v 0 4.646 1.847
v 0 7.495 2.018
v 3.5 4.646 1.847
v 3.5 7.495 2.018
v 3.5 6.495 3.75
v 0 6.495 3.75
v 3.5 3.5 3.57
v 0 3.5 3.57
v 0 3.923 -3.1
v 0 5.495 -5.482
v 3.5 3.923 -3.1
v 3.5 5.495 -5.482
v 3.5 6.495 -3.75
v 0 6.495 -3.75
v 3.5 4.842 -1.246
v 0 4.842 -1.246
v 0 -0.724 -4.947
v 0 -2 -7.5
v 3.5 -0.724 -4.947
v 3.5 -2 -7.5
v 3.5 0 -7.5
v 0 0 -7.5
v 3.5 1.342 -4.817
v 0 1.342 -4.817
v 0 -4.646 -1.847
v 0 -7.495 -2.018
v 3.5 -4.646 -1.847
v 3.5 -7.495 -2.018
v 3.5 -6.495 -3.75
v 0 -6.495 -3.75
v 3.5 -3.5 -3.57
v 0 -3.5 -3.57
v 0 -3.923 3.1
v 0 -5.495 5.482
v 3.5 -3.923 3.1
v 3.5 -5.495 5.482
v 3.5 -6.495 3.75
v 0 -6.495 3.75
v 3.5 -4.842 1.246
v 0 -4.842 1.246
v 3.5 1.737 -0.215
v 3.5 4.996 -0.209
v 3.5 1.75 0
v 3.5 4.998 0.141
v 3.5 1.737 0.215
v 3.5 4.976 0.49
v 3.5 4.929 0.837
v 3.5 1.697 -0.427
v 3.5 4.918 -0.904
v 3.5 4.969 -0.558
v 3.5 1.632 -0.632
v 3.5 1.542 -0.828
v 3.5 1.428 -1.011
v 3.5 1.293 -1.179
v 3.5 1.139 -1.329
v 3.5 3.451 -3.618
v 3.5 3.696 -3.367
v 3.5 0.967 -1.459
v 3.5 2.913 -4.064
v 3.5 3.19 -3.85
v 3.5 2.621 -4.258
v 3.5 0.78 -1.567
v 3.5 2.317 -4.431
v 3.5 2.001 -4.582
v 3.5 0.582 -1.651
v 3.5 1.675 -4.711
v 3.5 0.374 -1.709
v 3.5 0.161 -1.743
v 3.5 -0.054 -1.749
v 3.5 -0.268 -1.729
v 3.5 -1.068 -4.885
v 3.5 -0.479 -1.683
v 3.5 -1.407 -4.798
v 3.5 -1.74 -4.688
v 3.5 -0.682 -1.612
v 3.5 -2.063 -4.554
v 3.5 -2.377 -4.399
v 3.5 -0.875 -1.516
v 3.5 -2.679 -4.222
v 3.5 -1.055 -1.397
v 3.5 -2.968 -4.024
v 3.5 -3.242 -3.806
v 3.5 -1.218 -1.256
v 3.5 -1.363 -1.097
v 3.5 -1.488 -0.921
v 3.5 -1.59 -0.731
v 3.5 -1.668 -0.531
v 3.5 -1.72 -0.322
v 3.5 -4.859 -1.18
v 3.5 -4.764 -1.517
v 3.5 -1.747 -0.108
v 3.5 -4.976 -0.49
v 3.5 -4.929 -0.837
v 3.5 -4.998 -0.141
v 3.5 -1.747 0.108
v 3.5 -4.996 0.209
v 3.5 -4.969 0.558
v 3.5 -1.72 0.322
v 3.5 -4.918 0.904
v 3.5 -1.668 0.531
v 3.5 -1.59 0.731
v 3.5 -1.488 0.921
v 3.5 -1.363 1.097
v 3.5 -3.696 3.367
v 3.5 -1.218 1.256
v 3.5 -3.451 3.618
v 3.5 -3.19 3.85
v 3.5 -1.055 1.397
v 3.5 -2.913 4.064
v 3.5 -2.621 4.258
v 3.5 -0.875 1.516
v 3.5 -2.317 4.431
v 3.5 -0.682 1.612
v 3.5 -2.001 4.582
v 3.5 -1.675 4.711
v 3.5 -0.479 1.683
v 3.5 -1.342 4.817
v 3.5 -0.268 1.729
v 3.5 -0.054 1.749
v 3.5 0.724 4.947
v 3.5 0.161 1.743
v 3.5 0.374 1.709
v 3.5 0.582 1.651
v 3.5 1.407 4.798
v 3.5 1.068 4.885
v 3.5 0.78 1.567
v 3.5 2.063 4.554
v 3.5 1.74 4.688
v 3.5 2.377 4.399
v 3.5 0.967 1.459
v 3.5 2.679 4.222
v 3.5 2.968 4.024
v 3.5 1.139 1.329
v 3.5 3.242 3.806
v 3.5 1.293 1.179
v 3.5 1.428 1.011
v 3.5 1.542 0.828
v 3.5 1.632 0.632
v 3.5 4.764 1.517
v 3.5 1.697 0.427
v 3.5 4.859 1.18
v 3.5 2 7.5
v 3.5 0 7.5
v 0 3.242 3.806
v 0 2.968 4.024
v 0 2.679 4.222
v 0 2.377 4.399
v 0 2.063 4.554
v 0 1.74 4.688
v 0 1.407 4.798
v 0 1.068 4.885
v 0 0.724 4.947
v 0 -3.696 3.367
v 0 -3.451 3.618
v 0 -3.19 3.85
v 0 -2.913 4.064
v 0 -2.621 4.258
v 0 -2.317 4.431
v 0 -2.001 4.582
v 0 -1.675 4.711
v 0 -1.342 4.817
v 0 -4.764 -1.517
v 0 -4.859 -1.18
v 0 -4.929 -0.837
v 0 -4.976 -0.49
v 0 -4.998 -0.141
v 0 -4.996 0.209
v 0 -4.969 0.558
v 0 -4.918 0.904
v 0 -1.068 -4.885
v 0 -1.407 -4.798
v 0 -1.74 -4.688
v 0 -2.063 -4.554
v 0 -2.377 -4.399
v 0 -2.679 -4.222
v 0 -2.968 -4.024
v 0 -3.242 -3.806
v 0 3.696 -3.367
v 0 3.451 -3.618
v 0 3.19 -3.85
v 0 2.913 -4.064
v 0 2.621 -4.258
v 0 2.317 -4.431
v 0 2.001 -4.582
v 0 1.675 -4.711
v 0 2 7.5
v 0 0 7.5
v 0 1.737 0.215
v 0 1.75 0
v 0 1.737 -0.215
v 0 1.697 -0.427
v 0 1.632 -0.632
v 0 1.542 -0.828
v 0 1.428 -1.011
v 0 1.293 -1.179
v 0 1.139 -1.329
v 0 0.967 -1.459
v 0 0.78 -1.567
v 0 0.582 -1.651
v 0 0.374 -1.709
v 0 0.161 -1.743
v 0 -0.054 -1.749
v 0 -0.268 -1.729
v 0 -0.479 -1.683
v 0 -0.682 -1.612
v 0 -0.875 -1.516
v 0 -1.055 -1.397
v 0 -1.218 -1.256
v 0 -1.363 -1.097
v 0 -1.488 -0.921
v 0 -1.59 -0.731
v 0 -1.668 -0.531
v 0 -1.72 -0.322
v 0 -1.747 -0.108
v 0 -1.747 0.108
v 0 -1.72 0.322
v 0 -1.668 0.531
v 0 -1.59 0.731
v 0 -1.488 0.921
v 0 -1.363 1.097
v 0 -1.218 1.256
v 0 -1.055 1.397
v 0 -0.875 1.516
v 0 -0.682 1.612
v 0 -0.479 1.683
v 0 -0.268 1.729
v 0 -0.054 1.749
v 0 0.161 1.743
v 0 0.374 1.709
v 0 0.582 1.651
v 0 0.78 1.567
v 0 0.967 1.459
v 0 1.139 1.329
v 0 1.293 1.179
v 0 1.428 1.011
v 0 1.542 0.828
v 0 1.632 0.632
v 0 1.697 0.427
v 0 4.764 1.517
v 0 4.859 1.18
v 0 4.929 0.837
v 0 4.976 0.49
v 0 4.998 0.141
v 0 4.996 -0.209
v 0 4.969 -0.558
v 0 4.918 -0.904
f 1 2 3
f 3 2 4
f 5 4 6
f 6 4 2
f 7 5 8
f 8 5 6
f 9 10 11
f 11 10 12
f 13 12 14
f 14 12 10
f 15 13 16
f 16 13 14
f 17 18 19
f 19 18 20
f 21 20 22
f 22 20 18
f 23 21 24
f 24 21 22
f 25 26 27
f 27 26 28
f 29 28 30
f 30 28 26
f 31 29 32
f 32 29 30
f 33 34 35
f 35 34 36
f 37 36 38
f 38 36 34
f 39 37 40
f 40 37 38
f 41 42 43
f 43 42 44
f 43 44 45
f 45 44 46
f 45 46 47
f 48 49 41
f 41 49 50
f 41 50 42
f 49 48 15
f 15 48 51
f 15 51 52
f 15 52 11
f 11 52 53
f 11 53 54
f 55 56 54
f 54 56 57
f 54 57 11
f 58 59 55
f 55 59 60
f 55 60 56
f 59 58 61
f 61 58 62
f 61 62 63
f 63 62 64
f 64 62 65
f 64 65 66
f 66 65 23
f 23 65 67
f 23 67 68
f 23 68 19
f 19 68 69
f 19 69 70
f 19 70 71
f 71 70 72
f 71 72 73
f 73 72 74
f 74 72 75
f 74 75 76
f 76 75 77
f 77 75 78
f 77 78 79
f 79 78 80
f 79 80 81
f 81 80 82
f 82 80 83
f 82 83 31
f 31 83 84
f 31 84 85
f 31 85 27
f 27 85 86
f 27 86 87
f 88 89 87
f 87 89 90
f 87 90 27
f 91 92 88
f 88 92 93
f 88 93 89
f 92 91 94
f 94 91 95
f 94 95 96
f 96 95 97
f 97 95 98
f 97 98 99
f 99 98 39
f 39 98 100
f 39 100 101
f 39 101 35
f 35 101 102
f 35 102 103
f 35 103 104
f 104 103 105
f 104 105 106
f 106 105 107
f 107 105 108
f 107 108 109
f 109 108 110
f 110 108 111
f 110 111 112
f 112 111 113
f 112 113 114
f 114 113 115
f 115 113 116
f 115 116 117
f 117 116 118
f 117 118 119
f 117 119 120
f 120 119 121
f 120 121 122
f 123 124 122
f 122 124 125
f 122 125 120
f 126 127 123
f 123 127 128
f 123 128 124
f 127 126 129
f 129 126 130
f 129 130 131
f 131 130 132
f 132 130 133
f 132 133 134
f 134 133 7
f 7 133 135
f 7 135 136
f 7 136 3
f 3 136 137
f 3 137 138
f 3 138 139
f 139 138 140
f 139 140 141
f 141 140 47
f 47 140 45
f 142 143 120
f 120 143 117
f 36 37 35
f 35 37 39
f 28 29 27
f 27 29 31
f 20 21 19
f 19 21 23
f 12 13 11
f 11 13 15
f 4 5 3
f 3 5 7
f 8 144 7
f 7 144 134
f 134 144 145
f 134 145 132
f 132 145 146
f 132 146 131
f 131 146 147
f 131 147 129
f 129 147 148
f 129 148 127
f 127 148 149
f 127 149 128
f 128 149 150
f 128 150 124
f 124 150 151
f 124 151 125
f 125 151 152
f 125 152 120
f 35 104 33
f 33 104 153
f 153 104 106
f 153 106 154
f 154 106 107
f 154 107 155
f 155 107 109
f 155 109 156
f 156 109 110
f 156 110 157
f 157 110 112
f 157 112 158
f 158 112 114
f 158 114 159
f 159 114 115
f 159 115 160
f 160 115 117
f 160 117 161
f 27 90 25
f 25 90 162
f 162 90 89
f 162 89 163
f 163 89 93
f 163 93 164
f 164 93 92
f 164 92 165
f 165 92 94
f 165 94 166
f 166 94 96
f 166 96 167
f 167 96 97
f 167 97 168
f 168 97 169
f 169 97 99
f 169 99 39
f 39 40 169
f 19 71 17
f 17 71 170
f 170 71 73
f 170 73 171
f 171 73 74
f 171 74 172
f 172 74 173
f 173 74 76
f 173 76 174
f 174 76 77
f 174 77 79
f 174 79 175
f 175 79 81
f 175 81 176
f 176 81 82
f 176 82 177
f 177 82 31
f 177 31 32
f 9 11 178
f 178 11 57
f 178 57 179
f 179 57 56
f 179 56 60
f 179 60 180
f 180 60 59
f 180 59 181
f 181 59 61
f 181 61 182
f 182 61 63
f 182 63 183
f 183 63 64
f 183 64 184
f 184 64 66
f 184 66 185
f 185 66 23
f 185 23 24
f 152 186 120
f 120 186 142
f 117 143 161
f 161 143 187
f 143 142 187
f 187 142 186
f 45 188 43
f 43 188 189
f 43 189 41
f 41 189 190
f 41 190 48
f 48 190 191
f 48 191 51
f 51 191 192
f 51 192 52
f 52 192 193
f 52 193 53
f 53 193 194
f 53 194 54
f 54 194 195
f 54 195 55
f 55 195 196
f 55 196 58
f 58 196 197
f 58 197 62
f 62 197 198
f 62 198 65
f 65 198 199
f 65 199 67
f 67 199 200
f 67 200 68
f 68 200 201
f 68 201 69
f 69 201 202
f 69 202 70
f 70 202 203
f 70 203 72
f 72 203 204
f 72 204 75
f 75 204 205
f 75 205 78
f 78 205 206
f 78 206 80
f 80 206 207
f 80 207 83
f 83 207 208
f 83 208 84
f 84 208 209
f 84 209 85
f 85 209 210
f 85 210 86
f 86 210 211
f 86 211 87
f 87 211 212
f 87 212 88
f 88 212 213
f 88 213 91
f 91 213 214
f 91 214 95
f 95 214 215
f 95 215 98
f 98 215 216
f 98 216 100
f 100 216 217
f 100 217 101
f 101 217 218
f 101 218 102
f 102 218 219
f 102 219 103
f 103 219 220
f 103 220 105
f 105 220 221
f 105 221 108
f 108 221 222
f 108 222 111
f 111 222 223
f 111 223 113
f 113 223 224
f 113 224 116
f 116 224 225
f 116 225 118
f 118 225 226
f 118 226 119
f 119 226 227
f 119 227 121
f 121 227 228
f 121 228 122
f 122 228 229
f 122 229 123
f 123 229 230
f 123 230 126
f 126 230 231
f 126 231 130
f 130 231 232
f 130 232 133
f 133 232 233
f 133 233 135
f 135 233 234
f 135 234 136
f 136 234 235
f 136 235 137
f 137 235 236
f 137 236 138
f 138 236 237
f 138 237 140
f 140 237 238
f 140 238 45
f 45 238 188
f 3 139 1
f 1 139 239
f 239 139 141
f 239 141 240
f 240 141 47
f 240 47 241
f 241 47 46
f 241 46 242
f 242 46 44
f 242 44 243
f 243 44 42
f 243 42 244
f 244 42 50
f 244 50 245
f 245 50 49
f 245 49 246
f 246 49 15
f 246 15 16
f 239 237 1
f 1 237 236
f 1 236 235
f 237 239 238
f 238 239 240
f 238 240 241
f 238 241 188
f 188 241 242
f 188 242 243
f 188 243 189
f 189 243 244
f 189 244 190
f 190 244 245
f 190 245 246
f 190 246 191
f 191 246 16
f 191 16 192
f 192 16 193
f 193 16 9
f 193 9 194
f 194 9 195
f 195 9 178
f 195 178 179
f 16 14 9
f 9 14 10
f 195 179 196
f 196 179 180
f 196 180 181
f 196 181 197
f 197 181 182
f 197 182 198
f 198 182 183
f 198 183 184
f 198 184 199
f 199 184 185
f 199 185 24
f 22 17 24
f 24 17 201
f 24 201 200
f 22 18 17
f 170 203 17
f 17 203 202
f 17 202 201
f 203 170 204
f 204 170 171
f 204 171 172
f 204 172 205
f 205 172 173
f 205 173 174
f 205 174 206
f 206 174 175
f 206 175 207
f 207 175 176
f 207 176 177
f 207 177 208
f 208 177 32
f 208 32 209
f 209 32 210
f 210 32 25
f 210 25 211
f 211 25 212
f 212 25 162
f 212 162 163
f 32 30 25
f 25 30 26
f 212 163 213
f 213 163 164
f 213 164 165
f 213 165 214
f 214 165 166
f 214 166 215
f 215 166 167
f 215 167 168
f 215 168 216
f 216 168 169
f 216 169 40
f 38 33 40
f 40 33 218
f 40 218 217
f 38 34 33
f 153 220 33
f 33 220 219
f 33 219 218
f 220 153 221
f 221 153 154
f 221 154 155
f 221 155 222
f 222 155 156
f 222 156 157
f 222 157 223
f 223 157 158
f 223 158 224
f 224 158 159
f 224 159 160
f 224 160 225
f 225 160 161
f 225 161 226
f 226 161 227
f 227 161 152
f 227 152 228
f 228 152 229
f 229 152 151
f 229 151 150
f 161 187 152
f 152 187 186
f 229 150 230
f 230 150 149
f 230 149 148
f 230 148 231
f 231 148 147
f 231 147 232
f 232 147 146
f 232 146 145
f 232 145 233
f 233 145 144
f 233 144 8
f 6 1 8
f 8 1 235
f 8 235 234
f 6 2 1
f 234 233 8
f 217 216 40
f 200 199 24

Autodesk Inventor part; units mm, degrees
ref_plane "YZ Plane" through (0, 0, 0) normal (1, 0, 0) x (0, 1, 0)
ref_plane "XZ Plane" through (0, 0, 0) normal (0, 1, 0) x (-1, 0, 0)
ref_plane "XY Plane" through (0, 0, 0) normal (0, 0, 1) x (1, 0, 0)
sketch "Sketch1" plane through (0, 0, 0) normal (1, 0, 0) x (0, 1, 0)
  circle A0 centre (0, 0) radius 1.75
  circle A1 centre (0, 0) radius 5
  dimension "d0" = 3.5
  dimension "d1" = 10
extrude "Extrusion1" add sketch "Sketch1" along normal blind 3.5
sketch "Sketch2" plane through (3.5, 0, 0) normal (1, 0, 0) x (0, 0, -1)
  circle A0 centre (0, 0) radius 5 construction
  line L0 (0, 5) -> (0, 4.5) construction
  line L1 (0, 4.5) -> (1, 4.5) construction
  line L2 (1, 4.5) -> (-1, 4.5) construction
  line L3 (0, 4.5) -> (0, 7.5) construction
  arc A1 (0, 7.5) -> (-1, 4.5) centre (2.4623, 5.0126) ccw
  line L4 (0, 7.5) -> (2, 7.5)
  dimension "d4" = 0.5
  dimension "d5" = 1
  dimension "d6" = 2
  dimension "d7" = 3
  dimension "d8" = 3.5
  dimension "d9" = 2
sketch "Sketch3" plane through (3.5, 0, 0) normal (1, 0, 0) x (0, 0, -1)
  circle A0 centre (0, 0) radius 5 construction
  line L0 (-5, 0) -> (-4.5, 0) construction
  line L1 (-4.5, 0) -> (-4.5, 1.5) construction
  line L2 (-4.5, 1.5) -> (-4.5, 0) construction
  line L3 (-4.5, 0) -> (-4.5, -1.5) construction
  line L4 (-5, 0) -> (-7.5, 0) construction
  line L5 (-7.5, 0) -> (-4.5, -1.5)
  line L6 (-7.5, 0) -> (-7.5, 2)
  line L7 (-7.5, 2) -> (-4.9474, 0.7237)
  line L8 (-4.5, -1.5) -> (-4.5, 0.5)
  line L9 (-4.9474, 0.7237) -> (-4.5, 0.5)
  dimension "d10" = 0.5
  dimension "d11" = 1.5
  dimension "d12" = 1.5
  dimension "d13" = 1.5
  dimension "d14" = 2.5
  dimension "d15" = 2
extrude "Extrusion2" add sketch "Sketch3" against normal blind 3.5
pattern_circular "Circular Pattern1" count 6 over 360 about axis through (0, 0, 0) along (1, 0, 0) of "Extrusion2"
properties part number "mtv_gear6_1-16"
